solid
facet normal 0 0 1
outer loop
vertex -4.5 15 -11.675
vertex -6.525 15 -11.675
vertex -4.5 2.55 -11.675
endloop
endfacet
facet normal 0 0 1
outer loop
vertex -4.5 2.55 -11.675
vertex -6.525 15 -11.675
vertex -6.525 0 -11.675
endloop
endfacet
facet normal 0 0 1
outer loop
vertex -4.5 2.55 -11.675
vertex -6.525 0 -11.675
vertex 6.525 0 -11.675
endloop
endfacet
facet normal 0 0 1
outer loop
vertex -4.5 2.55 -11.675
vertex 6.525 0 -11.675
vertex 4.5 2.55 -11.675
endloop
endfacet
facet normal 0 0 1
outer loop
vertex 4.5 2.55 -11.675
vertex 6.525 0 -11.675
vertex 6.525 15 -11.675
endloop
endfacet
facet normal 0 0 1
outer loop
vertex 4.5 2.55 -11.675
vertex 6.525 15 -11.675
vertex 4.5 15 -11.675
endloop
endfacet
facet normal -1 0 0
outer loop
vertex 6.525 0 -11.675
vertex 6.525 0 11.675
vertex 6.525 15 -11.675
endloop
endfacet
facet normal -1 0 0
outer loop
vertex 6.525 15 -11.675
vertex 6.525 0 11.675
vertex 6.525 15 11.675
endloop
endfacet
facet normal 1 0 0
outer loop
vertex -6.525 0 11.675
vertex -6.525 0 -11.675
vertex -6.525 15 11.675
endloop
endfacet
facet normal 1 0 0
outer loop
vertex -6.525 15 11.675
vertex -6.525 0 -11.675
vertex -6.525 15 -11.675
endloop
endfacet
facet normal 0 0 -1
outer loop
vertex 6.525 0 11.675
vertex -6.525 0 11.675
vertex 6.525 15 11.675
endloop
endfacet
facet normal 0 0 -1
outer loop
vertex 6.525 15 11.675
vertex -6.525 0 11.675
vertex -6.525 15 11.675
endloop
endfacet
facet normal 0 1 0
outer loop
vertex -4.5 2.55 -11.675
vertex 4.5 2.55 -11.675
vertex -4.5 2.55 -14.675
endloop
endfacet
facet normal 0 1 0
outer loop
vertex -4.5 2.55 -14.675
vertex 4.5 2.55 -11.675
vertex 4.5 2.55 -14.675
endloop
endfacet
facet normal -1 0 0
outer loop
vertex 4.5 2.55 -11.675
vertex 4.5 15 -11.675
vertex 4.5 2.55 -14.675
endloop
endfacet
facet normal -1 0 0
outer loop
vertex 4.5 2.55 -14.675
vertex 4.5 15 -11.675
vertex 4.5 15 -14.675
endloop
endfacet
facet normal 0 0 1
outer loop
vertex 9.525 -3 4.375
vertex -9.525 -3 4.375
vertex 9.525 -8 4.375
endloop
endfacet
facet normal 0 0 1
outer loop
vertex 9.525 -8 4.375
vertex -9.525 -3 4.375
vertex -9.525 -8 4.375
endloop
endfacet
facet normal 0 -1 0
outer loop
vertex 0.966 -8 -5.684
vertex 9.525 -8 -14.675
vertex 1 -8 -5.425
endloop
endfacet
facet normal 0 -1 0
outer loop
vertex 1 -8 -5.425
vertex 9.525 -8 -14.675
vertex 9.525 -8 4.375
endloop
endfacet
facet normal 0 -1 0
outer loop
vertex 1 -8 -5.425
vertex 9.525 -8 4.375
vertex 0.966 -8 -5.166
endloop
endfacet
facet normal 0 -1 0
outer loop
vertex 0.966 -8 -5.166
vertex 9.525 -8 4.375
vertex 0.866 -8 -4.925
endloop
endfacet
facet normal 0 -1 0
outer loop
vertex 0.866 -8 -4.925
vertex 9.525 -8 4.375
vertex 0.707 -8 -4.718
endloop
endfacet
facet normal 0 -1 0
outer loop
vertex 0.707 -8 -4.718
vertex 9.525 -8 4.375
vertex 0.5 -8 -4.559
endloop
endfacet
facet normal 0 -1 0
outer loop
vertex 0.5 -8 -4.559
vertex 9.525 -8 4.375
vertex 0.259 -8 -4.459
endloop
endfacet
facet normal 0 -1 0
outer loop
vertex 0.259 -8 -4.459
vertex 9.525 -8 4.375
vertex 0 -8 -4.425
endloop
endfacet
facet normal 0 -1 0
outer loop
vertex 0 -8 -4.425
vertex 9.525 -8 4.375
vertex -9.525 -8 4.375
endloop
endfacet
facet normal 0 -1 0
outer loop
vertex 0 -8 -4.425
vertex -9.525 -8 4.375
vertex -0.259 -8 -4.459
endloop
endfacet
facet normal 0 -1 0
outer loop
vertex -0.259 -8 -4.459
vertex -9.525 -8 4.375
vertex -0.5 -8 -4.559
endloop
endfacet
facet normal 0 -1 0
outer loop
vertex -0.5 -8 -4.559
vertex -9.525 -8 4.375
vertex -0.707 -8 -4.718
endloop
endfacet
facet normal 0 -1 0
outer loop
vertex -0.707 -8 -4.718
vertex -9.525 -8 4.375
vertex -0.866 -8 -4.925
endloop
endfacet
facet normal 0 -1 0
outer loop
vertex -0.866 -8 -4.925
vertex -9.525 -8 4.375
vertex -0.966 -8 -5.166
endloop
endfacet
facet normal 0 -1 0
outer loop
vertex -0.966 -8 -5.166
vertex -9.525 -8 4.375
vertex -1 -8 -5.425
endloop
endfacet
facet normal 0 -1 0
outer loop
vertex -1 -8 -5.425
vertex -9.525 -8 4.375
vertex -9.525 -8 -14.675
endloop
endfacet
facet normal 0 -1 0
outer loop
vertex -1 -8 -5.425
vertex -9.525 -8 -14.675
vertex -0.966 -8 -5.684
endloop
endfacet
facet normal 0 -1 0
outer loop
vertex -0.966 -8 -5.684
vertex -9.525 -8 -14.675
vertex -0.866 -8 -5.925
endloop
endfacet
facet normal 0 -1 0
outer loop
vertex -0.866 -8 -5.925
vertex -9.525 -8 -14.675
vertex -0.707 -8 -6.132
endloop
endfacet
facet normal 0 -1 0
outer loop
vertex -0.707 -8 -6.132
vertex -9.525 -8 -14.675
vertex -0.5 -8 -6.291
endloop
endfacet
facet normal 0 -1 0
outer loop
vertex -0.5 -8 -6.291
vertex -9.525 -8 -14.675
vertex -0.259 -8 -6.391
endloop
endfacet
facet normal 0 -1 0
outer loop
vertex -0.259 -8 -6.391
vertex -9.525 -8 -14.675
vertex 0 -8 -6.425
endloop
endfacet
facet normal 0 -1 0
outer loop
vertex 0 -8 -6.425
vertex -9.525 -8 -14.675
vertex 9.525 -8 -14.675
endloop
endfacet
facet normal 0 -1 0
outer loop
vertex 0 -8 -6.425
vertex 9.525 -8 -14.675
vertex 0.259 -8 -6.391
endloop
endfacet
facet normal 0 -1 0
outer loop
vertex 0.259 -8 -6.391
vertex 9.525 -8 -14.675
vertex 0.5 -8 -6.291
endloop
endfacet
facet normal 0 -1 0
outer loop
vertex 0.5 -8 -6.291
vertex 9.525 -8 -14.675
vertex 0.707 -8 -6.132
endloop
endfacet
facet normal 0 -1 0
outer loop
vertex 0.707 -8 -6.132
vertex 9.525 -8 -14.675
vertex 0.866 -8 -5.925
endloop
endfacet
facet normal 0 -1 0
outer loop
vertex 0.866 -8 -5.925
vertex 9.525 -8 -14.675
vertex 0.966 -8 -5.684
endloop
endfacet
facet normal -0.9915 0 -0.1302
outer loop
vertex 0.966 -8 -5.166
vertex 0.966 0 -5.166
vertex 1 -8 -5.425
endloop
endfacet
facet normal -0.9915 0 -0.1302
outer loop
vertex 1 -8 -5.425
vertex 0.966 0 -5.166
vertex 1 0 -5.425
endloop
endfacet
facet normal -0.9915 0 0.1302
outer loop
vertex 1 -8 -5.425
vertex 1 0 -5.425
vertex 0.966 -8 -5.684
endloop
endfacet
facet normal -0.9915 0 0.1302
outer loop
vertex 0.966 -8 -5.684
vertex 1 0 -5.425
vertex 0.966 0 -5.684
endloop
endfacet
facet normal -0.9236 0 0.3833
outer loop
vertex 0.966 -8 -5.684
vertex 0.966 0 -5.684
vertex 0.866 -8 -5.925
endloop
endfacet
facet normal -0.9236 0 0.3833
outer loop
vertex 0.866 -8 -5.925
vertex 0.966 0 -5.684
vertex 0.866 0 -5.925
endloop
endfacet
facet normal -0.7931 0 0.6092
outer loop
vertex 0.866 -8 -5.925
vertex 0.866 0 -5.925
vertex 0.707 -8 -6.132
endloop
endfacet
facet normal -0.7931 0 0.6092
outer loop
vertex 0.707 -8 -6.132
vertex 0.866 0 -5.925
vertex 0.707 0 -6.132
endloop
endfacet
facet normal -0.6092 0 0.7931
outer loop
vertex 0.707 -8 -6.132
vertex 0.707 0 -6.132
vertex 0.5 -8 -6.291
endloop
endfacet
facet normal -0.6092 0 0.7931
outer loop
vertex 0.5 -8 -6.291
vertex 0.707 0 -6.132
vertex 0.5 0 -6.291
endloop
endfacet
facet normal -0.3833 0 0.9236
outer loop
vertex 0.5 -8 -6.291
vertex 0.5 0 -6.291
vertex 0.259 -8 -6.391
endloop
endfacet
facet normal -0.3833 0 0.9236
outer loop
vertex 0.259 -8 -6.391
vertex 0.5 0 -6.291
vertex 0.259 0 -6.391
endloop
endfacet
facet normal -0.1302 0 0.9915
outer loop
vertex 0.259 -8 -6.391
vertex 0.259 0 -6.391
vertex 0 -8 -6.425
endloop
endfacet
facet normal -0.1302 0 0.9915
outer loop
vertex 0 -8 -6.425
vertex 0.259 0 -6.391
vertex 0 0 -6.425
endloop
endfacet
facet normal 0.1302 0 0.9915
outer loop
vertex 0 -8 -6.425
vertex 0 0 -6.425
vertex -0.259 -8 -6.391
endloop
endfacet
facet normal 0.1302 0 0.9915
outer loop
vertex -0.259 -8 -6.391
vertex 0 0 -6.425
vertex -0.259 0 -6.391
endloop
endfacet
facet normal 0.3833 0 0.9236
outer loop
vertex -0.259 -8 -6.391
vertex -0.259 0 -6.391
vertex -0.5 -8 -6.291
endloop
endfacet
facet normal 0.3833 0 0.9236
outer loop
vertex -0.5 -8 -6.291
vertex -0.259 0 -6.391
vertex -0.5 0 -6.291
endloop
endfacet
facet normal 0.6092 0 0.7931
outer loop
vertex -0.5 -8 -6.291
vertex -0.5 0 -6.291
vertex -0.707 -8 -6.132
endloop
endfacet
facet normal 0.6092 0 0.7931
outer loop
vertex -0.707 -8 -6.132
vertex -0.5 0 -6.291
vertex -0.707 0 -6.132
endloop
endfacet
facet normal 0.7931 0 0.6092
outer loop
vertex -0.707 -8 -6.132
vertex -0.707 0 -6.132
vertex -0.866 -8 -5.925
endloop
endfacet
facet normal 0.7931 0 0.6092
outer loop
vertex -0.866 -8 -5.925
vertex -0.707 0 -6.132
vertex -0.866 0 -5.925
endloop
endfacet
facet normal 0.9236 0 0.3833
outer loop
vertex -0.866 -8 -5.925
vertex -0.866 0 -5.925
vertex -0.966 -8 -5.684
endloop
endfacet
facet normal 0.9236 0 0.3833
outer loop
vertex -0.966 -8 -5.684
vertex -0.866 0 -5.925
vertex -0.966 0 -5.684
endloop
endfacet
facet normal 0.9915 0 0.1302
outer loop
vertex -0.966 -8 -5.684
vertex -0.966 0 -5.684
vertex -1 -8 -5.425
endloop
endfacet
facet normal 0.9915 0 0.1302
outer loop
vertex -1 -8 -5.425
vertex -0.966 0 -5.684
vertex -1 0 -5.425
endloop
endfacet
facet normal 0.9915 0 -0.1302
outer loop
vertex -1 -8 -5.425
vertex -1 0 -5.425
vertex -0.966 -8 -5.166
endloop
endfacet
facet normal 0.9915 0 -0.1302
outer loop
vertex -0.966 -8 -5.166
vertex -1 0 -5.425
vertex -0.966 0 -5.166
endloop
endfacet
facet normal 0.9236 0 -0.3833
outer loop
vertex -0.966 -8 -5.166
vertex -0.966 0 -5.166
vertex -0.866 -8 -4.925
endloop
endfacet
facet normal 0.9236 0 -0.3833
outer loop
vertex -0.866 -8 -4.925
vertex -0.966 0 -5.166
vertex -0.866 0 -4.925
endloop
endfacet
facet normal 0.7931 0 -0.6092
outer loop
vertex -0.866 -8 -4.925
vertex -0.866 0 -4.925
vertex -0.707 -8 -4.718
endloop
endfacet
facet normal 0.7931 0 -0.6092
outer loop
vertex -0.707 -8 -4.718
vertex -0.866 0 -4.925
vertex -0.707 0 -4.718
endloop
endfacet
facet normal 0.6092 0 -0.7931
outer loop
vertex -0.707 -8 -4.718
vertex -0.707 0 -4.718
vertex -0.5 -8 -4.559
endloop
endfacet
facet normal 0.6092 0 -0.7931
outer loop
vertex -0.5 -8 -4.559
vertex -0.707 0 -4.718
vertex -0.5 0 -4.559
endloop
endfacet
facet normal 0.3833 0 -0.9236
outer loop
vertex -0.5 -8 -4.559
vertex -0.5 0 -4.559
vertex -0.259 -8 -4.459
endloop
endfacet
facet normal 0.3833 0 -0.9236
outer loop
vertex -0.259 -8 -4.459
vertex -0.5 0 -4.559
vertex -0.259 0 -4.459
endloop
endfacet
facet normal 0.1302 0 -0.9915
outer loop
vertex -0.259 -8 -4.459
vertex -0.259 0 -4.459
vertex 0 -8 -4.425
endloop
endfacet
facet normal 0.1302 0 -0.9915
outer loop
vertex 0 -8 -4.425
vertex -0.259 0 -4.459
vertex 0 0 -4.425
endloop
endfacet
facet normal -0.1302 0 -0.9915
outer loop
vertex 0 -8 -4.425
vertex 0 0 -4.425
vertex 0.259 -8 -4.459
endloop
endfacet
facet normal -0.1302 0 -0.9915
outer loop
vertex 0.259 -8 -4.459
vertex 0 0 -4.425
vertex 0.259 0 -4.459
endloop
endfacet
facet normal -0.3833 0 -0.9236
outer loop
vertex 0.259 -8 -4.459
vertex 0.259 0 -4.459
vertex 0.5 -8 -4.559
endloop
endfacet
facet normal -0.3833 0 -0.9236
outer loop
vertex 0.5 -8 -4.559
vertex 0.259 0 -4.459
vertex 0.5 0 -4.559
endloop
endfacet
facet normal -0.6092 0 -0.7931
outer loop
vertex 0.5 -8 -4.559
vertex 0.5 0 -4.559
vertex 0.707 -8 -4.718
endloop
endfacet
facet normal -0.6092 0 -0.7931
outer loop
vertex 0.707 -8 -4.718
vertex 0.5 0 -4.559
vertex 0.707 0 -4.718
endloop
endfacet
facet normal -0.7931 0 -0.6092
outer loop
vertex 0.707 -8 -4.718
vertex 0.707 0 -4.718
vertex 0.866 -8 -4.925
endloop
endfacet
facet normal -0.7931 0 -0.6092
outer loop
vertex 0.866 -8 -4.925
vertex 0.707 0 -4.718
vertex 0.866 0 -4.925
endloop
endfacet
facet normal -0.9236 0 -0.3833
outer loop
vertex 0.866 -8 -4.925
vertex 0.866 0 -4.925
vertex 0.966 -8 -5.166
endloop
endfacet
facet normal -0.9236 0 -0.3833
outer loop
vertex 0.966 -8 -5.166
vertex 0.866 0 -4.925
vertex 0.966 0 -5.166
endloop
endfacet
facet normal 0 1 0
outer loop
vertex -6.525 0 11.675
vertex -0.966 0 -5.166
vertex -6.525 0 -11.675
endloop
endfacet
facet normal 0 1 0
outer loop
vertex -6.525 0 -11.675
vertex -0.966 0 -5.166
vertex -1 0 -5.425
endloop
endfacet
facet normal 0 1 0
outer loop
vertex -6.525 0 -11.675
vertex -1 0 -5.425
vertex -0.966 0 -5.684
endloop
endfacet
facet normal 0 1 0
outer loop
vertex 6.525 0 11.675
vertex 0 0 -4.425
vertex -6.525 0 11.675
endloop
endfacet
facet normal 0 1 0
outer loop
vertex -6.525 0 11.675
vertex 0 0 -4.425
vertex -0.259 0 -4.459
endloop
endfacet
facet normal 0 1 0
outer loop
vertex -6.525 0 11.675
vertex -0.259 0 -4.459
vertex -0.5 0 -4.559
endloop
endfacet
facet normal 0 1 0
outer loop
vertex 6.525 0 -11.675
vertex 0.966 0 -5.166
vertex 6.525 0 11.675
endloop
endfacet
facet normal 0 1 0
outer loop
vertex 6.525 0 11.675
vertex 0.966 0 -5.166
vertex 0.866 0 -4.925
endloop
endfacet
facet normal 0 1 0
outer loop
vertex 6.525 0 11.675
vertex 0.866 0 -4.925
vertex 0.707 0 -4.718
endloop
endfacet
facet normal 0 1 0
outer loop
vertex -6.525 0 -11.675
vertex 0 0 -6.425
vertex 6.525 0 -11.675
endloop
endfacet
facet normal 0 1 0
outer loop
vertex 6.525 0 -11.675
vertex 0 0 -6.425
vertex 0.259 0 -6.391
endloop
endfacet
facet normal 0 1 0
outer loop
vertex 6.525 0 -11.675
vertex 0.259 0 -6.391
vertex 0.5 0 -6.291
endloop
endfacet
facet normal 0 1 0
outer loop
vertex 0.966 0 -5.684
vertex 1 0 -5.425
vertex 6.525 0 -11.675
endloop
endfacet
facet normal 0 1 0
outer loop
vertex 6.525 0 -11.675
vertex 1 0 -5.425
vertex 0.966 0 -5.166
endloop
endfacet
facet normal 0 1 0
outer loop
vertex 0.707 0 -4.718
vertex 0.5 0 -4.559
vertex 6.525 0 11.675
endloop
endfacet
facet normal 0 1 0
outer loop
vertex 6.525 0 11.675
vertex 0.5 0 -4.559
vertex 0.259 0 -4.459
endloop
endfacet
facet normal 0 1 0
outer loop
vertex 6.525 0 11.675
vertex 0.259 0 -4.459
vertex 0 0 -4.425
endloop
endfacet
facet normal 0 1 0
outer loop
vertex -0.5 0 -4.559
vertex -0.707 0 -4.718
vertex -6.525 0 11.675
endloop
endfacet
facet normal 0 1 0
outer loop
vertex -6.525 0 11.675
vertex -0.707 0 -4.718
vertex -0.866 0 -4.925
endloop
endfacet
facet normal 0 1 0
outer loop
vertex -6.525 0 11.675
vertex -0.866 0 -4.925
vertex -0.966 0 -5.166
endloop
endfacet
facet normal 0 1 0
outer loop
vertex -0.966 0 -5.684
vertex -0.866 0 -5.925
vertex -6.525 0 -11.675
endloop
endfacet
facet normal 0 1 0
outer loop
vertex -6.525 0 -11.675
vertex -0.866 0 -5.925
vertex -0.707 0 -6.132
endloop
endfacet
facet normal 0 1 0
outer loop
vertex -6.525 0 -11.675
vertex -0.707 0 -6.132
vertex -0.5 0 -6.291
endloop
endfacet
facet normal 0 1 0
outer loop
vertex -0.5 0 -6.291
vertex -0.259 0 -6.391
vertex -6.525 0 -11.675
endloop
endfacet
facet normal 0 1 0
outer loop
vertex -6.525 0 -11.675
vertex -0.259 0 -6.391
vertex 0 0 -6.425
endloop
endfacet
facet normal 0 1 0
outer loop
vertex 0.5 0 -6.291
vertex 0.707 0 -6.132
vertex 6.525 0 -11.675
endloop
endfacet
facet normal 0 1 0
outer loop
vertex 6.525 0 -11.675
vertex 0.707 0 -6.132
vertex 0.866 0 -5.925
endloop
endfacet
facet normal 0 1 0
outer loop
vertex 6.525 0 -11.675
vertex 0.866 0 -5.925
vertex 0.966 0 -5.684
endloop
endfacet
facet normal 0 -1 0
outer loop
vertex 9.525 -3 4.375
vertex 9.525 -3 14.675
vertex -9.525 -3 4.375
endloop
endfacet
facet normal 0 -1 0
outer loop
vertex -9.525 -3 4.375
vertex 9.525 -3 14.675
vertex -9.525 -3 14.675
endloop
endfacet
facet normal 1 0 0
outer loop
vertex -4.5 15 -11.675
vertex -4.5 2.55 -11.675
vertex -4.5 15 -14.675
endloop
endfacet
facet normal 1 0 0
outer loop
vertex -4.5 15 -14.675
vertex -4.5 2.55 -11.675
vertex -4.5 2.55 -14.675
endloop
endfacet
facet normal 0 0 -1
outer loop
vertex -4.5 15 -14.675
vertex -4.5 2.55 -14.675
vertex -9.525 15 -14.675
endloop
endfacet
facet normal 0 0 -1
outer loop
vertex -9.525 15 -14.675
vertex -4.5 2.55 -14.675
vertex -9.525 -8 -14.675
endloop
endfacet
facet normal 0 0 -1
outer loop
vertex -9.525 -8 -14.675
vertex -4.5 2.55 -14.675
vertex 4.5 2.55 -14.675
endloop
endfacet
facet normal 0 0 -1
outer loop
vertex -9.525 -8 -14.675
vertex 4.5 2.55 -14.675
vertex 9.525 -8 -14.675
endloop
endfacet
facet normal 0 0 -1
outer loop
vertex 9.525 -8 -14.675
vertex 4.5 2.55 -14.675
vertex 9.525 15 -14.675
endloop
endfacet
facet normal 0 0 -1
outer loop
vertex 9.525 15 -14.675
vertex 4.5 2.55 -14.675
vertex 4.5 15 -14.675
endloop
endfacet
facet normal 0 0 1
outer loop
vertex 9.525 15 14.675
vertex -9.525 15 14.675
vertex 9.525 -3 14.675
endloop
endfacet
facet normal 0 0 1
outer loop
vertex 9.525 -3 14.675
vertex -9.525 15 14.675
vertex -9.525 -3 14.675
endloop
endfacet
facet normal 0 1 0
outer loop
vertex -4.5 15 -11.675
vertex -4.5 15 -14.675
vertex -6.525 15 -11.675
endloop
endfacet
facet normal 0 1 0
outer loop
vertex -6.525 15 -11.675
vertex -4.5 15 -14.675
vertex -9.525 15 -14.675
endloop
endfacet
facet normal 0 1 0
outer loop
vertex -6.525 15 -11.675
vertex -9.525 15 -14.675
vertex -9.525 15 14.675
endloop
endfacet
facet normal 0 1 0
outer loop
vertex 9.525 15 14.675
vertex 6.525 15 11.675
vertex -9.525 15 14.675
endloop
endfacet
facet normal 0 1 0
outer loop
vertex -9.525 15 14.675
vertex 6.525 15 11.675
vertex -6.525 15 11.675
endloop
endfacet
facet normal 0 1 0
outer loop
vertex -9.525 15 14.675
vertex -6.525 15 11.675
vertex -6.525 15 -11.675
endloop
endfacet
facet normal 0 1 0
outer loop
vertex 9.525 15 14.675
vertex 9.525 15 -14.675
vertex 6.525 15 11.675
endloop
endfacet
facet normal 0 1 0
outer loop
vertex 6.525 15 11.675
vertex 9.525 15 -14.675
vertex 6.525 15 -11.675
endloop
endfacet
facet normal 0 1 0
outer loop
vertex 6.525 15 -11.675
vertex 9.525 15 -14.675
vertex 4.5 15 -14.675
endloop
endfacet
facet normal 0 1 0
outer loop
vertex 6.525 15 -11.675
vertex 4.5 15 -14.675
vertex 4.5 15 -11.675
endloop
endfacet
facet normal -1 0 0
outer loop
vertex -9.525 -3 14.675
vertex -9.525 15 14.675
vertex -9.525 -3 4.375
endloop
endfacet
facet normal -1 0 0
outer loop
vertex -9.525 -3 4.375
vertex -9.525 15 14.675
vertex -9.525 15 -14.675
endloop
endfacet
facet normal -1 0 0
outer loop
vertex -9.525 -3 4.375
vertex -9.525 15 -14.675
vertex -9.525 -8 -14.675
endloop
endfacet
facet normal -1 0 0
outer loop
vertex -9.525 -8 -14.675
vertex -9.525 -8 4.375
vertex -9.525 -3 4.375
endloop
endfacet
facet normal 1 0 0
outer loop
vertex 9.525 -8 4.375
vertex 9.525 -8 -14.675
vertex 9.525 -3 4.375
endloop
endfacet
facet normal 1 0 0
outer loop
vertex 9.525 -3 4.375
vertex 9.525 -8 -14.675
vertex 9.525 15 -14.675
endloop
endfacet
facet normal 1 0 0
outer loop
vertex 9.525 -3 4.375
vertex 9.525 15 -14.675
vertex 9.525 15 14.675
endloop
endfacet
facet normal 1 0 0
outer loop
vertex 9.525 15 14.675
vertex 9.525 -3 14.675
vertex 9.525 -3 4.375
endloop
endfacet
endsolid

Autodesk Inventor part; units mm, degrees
ref_plane "YZ Plane" through (0, 0, 0) normal (1, 0, 0) x (0, 1, 0)
ref_plane "XZ Plane" through (0, 0, 0) normal (0, 1, 0) x (-1, 0, 0)
ref_plane "XY Plane" through (0, 0, 0) normal (0, 0, 1) x (1, 0, 0)
sketch "Sketch1" plane through (0, 0, 0) normal (0, 1, 0) x (-1, 0, 0)
  line L0 (6.225, 11.375) -> (-6.225, 11.375)
  line L1 (-6.225, 11.375) -> (-6.225, -11.375)
  line L2 (-6.225, -11.375) -> (6.225, -11.375)
  line L3 (6.225, -11.375) -> (6.225, 11.375)
  line L4 (6.225, 11.375) -> (-6.225, -11.375) construction
  line L5 (-6.225, 11.375) -> (6.225, -11.375) construction
  line L6 (9.525, 14.675) -> (-9.525, 14.675)
  line L7 (-9.525, 14.675) -> (-9.525, -14.675)
  line L8 (-9.525, -14.675) -> (9.525, -14.675)
  line L9 (9.525, -14.675) -> (9.525, 14.675)
  point P0 (0, 0)
  dimension "d0" = 12.45
  dimension "d1" = 22.75
  dimension "d2" = 3.3
extrude "Extrusion1" add sketch "Sketch1" along normal blind 15
sketch "Sketch2" plane through (9.525, 0, -14.675) normal (0, 0, -1) x (-1, 0, 0)
  line L0 (14.025, 2.55) -> (5.025, 2.55)
  line L1 (5.025, 2.55) -> (5.025, 6.55)
  line L2 (14.025, 6.55) -> (14.025, 2.55)
  line L3 (3.3, 15) -> (15.75, 15) projected
  line L4 (5.025, 2.55) -> (14.025, 2.55)
  line L5 (14.025, 2.55) -> (14.025, 15)
  line L6 (14.025, 15) -> (5.025, 15)
  line L7 (5.025, 15) -> (5.025, 2.55)
  point P0 (9.525, 0)
  dimension "d7" = 9
  dimension "d8" = 4
extrude "Extrusion2" cut sketch "Sketch2" against normal up to next
sketch "Sketch3" plane through (0, 0, 0) normal (0, -1, 0) x (1, 0, 0)
  line L0 (-9.525, 14.675) -> (9.525, 14.675) projected
  line L1 (-9.525, -14.675) -> (-9.525, 14.675) projected
  line L2 (9.525, -14.675) -> (-9.525, -14.675) projected
  line L3 (9.525, 14.675) -> (9.525, -14.675) projected
  point P0 (0, 0)
extrude "Extrusion3" add sketch "Sketch3" along normal blind 3
sketch "Sketch4" plane through (0, -3, 0) normal (0, -1, 0) x (1, 0, 0)
  line L0 (6.225, 11.375) -> (6.225, -11.375) projected
  line L1 (6.225, -11.375) -> (-6.225, -11.375) projected
  line L2 (-6.225, -11.375) -> (-6.225, 11.375) projected
  line L3 (4.5, -11.375) -> (-4.5, -11.375) projected
  line L4 (0, -11.375) -> (0, -5.425)
  circle A0 centre (0, -5.425) radius 1
  point P0 (0, 0)
  dimension "d13" = 5.95
  dimension "d14" = 2
extrude "Extrusion4" cut sketch "Sketch4" against normal up to next
sketch "Sketch5" plane through (0, -3, 0) normal (0, -1, 0) x (1, 0, 0)
  circle A0 centre (0, -5.425) radius 1 projected
  line L0 (-9.525, -14.675) -> (9.525, -14.675) projected
  line L1 (9.525, -14.675) -> (9.525, 4.375)
  line L2 (9.525, 4.375) -> (-9.525, 4.375)
  line L3 (-9.525, 4.375) -> (-9.525, -14.675)
  line L4 (-9.525, -14.675) -> (9.525, -14.675)
  line L5 (9.525, -14.675) -> (9.525, 4.375)
  point P0 (0, 0)
  dimension "d17" = 19.05
extrude "Extrusion5" add sketch "Sketch5" along normal blind 5
sketch "Sketch6" plane through (0, 15, 0) normal (0, 1, 0) x (1, 0, 0)
  circle A0 centre (0, 5.425) radius 1 projected
  line L0 (-6.225, -11.375) -> (6.225, -11.375) projected
  line L1 (6.225, -11.375) -> (6.225, 11.375) projected
  line L2 (6.225, 11.375) -> (-6.225, 11.375) projected
  line L3 (-6.225, 11.375) -> (-6.225, -11.375) projected
  line L4 (0, 11.375) -> (0, 11.675)
  line L5 (-6.525, 11.675) -> (6.525, 11.675)
  line L6 (6.525, 11.675) -> (6.525, -11.675)
  line L7 (6.525, -11.675) -> (-6.525, -11.675)
  line L8 (-6.525, -11.675) -> (-6.525, 11.675)
  point P0 (0, 0)
  dimension "d20" = 0.3
extrude "Extrusion6" cut sketch "Sketch6" against normal up to surface (15 mm away) contours L3 L2 L1 L0 | L5 L6 L7 L8
properties part number "servo housing"
